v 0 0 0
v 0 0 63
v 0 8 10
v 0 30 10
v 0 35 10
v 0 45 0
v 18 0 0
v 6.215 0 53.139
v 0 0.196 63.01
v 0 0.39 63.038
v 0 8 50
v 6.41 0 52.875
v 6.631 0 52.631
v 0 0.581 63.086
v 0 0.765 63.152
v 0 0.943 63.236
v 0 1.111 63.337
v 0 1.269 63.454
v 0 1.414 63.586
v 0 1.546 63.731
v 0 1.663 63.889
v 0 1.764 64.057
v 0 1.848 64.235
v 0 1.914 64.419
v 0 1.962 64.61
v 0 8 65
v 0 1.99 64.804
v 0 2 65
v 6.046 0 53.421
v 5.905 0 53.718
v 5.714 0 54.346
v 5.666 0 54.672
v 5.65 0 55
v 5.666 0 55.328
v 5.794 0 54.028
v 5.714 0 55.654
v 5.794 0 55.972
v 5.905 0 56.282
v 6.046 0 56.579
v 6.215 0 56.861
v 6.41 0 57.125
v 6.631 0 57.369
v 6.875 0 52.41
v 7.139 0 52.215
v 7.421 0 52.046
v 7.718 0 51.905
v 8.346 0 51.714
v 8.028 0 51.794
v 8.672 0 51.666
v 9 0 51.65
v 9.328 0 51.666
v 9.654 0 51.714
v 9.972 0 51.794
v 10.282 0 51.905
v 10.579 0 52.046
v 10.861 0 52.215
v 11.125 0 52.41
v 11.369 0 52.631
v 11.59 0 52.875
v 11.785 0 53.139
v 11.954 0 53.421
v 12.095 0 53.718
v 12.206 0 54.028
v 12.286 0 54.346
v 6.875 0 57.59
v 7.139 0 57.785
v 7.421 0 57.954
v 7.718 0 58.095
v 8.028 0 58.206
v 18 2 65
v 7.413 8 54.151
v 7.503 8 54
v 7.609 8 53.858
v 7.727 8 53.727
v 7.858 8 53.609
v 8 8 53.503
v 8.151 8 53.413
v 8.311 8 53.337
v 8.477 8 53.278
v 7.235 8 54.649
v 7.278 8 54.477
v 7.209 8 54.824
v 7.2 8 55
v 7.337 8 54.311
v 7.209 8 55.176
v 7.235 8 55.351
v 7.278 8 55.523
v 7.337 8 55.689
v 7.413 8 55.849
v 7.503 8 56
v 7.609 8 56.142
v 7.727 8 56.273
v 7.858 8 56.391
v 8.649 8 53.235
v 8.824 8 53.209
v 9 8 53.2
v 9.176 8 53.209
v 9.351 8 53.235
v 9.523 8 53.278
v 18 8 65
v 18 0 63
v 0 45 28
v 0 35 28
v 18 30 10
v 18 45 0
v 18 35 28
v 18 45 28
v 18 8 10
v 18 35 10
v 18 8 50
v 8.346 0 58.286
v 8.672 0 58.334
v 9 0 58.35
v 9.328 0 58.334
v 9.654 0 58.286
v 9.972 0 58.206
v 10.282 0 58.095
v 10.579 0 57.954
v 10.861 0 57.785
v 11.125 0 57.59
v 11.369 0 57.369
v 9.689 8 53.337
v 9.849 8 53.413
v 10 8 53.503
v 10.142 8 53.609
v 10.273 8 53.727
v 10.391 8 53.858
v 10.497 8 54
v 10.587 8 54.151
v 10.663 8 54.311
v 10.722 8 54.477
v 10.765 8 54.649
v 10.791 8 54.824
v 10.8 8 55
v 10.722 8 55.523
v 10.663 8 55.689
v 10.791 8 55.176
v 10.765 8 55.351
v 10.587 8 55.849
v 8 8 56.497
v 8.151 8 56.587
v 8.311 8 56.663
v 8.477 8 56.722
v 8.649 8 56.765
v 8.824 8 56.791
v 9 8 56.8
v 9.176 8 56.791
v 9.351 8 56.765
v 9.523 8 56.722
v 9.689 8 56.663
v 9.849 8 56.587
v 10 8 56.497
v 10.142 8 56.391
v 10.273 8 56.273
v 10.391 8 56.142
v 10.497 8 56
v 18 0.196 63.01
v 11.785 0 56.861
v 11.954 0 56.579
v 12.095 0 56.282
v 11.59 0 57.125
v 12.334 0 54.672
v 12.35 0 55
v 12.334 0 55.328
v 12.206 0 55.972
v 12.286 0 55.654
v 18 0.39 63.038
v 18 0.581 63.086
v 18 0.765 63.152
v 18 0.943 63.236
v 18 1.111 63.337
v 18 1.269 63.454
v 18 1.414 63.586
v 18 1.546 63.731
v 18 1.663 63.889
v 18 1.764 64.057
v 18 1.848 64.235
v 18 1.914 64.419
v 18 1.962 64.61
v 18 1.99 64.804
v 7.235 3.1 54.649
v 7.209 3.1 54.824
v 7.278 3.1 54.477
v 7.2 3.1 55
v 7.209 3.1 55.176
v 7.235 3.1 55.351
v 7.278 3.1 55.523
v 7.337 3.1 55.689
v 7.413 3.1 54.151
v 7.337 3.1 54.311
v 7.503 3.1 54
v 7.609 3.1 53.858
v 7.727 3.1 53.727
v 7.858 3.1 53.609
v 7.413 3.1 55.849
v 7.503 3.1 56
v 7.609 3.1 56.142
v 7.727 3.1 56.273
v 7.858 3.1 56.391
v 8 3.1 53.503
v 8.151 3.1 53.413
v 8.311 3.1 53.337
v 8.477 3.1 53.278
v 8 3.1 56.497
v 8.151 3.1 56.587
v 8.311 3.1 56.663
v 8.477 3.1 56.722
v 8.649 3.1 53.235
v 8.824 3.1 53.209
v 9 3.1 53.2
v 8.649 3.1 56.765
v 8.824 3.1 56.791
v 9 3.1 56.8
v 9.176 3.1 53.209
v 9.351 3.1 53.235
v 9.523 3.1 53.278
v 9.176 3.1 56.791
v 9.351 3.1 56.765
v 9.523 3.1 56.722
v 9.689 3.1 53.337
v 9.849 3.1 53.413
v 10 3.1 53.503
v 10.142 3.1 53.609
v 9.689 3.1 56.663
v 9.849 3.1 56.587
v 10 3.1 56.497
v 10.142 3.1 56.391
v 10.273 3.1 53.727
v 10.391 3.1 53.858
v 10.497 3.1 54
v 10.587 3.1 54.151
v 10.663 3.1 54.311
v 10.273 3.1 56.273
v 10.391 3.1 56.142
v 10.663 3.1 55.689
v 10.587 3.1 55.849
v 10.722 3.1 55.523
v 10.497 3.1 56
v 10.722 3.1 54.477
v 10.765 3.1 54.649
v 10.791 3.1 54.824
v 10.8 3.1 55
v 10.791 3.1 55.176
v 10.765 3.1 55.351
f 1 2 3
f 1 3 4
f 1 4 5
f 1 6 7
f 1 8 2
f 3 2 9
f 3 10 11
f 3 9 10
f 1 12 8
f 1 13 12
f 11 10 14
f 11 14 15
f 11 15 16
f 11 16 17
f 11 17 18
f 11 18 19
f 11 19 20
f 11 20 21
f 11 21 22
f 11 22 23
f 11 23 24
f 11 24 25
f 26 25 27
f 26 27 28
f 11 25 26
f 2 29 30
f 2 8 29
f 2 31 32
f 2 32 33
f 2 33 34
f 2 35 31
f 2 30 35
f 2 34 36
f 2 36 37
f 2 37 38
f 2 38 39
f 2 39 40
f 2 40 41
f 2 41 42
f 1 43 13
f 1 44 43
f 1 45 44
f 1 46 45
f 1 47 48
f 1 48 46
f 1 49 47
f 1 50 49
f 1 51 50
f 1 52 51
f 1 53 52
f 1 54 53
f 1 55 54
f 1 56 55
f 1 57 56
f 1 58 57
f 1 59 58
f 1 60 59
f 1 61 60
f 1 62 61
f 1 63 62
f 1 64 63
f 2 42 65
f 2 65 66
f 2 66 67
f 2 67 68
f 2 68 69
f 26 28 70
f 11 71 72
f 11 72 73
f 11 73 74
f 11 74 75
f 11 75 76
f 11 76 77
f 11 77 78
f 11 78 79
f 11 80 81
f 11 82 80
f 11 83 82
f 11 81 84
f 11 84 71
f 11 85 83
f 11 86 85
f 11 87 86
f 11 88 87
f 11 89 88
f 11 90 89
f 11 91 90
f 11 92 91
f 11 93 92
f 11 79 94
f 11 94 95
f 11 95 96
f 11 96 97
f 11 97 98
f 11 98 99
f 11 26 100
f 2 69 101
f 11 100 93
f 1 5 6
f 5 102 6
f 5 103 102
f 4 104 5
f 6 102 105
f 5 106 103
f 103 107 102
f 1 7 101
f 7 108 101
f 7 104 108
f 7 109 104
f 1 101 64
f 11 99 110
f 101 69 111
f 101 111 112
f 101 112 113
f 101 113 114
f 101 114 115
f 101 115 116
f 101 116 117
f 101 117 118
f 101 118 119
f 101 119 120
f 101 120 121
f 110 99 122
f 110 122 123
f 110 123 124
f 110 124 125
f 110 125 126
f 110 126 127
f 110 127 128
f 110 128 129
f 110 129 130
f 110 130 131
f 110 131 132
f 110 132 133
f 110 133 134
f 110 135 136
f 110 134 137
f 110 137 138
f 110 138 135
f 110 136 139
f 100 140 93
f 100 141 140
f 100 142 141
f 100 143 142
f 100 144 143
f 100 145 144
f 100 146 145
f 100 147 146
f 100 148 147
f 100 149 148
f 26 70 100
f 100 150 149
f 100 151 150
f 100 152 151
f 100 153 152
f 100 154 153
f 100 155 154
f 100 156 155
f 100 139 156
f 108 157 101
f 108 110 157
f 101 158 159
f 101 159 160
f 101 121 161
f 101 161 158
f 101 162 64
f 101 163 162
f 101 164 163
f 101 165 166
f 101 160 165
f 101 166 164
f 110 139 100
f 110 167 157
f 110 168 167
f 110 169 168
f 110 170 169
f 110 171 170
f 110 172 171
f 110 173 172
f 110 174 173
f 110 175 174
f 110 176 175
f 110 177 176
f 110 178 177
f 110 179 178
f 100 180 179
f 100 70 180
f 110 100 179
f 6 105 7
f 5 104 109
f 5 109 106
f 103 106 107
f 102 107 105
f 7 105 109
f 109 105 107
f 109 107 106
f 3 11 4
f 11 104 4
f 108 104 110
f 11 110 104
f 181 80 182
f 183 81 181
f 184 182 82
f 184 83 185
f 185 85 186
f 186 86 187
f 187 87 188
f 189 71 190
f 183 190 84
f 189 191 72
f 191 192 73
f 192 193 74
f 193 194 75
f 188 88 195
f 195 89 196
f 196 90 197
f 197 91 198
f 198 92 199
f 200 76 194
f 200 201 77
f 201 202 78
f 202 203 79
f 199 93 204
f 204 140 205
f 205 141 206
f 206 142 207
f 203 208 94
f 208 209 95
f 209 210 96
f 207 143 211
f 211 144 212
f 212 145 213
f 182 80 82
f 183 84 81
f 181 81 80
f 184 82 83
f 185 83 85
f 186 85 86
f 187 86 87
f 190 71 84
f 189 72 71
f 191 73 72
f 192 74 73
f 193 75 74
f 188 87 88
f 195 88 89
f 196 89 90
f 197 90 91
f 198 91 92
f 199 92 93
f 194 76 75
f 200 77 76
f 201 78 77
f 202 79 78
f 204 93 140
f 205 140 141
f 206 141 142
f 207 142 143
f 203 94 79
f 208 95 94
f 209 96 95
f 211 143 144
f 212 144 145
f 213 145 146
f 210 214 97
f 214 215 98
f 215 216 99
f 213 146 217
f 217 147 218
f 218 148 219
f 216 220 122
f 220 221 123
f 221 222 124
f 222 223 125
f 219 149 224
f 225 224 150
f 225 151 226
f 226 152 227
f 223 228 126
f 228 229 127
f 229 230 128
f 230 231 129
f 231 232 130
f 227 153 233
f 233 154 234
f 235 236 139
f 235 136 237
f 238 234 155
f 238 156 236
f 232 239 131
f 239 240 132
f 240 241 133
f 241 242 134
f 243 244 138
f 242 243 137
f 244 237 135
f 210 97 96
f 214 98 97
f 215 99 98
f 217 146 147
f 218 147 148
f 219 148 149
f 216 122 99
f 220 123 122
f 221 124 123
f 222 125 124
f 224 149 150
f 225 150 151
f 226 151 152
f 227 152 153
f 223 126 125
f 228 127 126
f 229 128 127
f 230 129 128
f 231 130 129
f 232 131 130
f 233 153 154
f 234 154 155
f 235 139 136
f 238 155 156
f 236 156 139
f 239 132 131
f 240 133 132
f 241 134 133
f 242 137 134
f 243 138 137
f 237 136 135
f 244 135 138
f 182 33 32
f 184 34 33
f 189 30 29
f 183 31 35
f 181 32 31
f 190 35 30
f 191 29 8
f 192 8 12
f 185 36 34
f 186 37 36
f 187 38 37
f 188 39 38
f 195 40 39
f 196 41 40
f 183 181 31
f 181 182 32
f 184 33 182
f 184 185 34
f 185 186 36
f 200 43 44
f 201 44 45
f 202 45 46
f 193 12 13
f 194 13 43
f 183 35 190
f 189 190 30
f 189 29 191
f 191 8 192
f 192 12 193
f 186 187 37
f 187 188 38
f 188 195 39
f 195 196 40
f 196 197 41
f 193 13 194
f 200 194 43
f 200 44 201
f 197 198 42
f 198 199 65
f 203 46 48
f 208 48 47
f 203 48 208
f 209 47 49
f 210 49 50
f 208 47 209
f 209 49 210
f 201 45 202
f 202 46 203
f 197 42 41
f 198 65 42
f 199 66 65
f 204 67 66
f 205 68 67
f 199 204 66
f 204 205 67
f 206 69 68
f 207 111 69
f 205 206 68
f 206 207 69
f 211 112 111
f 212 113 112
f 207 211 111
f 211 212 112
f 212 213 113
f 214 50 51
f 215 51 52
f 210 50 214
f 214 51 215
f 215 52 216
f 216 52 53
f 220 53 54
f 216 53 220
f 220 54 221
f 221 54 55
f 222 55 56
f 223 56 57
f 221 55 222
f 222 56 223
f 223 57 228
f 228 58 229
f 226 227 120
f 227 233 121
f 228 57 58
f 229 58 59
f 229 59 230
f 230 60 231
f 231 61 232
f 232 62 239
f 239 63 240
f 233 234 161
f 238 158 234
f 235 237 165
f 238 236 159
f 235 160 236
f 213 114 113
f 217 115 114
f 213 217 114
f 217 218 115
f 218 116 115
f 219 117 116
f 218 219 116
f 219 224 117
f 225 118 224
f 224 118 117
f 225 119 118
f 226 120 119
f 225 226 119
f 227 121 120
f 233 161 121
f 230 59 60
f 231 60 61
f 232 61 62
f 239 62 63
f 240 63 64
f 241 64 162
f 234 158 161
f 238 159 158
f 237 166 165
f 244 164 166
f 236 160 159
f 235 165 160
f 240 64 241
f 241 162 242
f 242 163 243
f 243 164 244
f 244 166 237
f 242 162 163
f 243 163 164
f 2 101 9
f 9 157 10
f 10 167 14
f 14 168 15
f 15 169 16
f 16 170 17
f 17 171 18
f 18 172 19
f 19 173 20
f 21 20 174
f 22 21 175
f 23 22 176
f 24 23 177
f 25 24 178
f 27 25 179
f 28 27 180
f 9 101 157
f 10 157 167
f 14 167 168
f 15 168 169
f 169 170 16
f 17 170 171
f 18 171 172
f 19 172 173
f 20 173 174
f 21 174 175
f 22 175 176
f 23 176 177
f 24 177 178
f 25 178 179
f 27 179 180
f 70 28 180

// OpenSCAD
// Towel Hook for M3 Flat Head Screw
// Designed for 3D printing (Recommended: print on side for max strength)
$fn = 64;

// Global dimensions
W = 18;      // Width of the hook
H = 65;      // Total height
D = 45;      // Total depth
T = 10;      // Thickness of the arm/hook
BT = 8;      // Base plate thickness

// Screw dimensions (M3 Flat Head)
SCREW_D = 3.6;
HEAD_D = 6.8;
HEAD_H = 3.2;

module towel_hook_v3() {
    difference() {
        union() {
            // Main structure extruded from the side profile
            // This ensures a clean look and easy fillets
            rotate([90, 0, 90])
            linear_extrude(height = W)
            polygon(points=[
                [0, 0],             // Bottom back
                [D, 0],             // Bottom front
                [D, T + 18],        // Tip top
                [D - T, T + 18],    // Tip inner top
                [D - T, T],         // Arm top
                [BT, T],            // Above gusset
                [BT, H],            // Back top front
                [0, H]              // Back top back
            ]);
            
            // Large structural gusset for heavy towels
            rotate([90, 0, 90])
            linear_extrude(height = W)
            polygon(points=[
                [BT, T],
                [D - T - 5, T],
                [BT, H - 15]
            ]);
        }

        // M3 Flat Head Screw Hole
        // Positioned high to handle the leverage of a heavy towel
        translate([W/2, -0.1, H - 10])
        rotate([-90, 0, 0]) {
            // Shaft
            cylinder(d = SCREW_D, h = BT + 0.2);
            // Countersink (y increases into the part)
            // d1 is at y=0, d2 is at y=HEAD_H
            cylinder(d1 = HEAD_D, d2 = SCREW_D, h = HEAD_H);
        }

        // Aesthetic / Safety Rounding
        // Round the very front of the hook
        translate([-1, D, T+18]) rotate([45, 0, 0]) cube([W+2, 10, 10]);
        // Round the back top
        translate([-1, 0, H]) rotate([0, 90, 0]) cylinder(r=2, h=W+2);
    }
}

towel_hook_v3();
